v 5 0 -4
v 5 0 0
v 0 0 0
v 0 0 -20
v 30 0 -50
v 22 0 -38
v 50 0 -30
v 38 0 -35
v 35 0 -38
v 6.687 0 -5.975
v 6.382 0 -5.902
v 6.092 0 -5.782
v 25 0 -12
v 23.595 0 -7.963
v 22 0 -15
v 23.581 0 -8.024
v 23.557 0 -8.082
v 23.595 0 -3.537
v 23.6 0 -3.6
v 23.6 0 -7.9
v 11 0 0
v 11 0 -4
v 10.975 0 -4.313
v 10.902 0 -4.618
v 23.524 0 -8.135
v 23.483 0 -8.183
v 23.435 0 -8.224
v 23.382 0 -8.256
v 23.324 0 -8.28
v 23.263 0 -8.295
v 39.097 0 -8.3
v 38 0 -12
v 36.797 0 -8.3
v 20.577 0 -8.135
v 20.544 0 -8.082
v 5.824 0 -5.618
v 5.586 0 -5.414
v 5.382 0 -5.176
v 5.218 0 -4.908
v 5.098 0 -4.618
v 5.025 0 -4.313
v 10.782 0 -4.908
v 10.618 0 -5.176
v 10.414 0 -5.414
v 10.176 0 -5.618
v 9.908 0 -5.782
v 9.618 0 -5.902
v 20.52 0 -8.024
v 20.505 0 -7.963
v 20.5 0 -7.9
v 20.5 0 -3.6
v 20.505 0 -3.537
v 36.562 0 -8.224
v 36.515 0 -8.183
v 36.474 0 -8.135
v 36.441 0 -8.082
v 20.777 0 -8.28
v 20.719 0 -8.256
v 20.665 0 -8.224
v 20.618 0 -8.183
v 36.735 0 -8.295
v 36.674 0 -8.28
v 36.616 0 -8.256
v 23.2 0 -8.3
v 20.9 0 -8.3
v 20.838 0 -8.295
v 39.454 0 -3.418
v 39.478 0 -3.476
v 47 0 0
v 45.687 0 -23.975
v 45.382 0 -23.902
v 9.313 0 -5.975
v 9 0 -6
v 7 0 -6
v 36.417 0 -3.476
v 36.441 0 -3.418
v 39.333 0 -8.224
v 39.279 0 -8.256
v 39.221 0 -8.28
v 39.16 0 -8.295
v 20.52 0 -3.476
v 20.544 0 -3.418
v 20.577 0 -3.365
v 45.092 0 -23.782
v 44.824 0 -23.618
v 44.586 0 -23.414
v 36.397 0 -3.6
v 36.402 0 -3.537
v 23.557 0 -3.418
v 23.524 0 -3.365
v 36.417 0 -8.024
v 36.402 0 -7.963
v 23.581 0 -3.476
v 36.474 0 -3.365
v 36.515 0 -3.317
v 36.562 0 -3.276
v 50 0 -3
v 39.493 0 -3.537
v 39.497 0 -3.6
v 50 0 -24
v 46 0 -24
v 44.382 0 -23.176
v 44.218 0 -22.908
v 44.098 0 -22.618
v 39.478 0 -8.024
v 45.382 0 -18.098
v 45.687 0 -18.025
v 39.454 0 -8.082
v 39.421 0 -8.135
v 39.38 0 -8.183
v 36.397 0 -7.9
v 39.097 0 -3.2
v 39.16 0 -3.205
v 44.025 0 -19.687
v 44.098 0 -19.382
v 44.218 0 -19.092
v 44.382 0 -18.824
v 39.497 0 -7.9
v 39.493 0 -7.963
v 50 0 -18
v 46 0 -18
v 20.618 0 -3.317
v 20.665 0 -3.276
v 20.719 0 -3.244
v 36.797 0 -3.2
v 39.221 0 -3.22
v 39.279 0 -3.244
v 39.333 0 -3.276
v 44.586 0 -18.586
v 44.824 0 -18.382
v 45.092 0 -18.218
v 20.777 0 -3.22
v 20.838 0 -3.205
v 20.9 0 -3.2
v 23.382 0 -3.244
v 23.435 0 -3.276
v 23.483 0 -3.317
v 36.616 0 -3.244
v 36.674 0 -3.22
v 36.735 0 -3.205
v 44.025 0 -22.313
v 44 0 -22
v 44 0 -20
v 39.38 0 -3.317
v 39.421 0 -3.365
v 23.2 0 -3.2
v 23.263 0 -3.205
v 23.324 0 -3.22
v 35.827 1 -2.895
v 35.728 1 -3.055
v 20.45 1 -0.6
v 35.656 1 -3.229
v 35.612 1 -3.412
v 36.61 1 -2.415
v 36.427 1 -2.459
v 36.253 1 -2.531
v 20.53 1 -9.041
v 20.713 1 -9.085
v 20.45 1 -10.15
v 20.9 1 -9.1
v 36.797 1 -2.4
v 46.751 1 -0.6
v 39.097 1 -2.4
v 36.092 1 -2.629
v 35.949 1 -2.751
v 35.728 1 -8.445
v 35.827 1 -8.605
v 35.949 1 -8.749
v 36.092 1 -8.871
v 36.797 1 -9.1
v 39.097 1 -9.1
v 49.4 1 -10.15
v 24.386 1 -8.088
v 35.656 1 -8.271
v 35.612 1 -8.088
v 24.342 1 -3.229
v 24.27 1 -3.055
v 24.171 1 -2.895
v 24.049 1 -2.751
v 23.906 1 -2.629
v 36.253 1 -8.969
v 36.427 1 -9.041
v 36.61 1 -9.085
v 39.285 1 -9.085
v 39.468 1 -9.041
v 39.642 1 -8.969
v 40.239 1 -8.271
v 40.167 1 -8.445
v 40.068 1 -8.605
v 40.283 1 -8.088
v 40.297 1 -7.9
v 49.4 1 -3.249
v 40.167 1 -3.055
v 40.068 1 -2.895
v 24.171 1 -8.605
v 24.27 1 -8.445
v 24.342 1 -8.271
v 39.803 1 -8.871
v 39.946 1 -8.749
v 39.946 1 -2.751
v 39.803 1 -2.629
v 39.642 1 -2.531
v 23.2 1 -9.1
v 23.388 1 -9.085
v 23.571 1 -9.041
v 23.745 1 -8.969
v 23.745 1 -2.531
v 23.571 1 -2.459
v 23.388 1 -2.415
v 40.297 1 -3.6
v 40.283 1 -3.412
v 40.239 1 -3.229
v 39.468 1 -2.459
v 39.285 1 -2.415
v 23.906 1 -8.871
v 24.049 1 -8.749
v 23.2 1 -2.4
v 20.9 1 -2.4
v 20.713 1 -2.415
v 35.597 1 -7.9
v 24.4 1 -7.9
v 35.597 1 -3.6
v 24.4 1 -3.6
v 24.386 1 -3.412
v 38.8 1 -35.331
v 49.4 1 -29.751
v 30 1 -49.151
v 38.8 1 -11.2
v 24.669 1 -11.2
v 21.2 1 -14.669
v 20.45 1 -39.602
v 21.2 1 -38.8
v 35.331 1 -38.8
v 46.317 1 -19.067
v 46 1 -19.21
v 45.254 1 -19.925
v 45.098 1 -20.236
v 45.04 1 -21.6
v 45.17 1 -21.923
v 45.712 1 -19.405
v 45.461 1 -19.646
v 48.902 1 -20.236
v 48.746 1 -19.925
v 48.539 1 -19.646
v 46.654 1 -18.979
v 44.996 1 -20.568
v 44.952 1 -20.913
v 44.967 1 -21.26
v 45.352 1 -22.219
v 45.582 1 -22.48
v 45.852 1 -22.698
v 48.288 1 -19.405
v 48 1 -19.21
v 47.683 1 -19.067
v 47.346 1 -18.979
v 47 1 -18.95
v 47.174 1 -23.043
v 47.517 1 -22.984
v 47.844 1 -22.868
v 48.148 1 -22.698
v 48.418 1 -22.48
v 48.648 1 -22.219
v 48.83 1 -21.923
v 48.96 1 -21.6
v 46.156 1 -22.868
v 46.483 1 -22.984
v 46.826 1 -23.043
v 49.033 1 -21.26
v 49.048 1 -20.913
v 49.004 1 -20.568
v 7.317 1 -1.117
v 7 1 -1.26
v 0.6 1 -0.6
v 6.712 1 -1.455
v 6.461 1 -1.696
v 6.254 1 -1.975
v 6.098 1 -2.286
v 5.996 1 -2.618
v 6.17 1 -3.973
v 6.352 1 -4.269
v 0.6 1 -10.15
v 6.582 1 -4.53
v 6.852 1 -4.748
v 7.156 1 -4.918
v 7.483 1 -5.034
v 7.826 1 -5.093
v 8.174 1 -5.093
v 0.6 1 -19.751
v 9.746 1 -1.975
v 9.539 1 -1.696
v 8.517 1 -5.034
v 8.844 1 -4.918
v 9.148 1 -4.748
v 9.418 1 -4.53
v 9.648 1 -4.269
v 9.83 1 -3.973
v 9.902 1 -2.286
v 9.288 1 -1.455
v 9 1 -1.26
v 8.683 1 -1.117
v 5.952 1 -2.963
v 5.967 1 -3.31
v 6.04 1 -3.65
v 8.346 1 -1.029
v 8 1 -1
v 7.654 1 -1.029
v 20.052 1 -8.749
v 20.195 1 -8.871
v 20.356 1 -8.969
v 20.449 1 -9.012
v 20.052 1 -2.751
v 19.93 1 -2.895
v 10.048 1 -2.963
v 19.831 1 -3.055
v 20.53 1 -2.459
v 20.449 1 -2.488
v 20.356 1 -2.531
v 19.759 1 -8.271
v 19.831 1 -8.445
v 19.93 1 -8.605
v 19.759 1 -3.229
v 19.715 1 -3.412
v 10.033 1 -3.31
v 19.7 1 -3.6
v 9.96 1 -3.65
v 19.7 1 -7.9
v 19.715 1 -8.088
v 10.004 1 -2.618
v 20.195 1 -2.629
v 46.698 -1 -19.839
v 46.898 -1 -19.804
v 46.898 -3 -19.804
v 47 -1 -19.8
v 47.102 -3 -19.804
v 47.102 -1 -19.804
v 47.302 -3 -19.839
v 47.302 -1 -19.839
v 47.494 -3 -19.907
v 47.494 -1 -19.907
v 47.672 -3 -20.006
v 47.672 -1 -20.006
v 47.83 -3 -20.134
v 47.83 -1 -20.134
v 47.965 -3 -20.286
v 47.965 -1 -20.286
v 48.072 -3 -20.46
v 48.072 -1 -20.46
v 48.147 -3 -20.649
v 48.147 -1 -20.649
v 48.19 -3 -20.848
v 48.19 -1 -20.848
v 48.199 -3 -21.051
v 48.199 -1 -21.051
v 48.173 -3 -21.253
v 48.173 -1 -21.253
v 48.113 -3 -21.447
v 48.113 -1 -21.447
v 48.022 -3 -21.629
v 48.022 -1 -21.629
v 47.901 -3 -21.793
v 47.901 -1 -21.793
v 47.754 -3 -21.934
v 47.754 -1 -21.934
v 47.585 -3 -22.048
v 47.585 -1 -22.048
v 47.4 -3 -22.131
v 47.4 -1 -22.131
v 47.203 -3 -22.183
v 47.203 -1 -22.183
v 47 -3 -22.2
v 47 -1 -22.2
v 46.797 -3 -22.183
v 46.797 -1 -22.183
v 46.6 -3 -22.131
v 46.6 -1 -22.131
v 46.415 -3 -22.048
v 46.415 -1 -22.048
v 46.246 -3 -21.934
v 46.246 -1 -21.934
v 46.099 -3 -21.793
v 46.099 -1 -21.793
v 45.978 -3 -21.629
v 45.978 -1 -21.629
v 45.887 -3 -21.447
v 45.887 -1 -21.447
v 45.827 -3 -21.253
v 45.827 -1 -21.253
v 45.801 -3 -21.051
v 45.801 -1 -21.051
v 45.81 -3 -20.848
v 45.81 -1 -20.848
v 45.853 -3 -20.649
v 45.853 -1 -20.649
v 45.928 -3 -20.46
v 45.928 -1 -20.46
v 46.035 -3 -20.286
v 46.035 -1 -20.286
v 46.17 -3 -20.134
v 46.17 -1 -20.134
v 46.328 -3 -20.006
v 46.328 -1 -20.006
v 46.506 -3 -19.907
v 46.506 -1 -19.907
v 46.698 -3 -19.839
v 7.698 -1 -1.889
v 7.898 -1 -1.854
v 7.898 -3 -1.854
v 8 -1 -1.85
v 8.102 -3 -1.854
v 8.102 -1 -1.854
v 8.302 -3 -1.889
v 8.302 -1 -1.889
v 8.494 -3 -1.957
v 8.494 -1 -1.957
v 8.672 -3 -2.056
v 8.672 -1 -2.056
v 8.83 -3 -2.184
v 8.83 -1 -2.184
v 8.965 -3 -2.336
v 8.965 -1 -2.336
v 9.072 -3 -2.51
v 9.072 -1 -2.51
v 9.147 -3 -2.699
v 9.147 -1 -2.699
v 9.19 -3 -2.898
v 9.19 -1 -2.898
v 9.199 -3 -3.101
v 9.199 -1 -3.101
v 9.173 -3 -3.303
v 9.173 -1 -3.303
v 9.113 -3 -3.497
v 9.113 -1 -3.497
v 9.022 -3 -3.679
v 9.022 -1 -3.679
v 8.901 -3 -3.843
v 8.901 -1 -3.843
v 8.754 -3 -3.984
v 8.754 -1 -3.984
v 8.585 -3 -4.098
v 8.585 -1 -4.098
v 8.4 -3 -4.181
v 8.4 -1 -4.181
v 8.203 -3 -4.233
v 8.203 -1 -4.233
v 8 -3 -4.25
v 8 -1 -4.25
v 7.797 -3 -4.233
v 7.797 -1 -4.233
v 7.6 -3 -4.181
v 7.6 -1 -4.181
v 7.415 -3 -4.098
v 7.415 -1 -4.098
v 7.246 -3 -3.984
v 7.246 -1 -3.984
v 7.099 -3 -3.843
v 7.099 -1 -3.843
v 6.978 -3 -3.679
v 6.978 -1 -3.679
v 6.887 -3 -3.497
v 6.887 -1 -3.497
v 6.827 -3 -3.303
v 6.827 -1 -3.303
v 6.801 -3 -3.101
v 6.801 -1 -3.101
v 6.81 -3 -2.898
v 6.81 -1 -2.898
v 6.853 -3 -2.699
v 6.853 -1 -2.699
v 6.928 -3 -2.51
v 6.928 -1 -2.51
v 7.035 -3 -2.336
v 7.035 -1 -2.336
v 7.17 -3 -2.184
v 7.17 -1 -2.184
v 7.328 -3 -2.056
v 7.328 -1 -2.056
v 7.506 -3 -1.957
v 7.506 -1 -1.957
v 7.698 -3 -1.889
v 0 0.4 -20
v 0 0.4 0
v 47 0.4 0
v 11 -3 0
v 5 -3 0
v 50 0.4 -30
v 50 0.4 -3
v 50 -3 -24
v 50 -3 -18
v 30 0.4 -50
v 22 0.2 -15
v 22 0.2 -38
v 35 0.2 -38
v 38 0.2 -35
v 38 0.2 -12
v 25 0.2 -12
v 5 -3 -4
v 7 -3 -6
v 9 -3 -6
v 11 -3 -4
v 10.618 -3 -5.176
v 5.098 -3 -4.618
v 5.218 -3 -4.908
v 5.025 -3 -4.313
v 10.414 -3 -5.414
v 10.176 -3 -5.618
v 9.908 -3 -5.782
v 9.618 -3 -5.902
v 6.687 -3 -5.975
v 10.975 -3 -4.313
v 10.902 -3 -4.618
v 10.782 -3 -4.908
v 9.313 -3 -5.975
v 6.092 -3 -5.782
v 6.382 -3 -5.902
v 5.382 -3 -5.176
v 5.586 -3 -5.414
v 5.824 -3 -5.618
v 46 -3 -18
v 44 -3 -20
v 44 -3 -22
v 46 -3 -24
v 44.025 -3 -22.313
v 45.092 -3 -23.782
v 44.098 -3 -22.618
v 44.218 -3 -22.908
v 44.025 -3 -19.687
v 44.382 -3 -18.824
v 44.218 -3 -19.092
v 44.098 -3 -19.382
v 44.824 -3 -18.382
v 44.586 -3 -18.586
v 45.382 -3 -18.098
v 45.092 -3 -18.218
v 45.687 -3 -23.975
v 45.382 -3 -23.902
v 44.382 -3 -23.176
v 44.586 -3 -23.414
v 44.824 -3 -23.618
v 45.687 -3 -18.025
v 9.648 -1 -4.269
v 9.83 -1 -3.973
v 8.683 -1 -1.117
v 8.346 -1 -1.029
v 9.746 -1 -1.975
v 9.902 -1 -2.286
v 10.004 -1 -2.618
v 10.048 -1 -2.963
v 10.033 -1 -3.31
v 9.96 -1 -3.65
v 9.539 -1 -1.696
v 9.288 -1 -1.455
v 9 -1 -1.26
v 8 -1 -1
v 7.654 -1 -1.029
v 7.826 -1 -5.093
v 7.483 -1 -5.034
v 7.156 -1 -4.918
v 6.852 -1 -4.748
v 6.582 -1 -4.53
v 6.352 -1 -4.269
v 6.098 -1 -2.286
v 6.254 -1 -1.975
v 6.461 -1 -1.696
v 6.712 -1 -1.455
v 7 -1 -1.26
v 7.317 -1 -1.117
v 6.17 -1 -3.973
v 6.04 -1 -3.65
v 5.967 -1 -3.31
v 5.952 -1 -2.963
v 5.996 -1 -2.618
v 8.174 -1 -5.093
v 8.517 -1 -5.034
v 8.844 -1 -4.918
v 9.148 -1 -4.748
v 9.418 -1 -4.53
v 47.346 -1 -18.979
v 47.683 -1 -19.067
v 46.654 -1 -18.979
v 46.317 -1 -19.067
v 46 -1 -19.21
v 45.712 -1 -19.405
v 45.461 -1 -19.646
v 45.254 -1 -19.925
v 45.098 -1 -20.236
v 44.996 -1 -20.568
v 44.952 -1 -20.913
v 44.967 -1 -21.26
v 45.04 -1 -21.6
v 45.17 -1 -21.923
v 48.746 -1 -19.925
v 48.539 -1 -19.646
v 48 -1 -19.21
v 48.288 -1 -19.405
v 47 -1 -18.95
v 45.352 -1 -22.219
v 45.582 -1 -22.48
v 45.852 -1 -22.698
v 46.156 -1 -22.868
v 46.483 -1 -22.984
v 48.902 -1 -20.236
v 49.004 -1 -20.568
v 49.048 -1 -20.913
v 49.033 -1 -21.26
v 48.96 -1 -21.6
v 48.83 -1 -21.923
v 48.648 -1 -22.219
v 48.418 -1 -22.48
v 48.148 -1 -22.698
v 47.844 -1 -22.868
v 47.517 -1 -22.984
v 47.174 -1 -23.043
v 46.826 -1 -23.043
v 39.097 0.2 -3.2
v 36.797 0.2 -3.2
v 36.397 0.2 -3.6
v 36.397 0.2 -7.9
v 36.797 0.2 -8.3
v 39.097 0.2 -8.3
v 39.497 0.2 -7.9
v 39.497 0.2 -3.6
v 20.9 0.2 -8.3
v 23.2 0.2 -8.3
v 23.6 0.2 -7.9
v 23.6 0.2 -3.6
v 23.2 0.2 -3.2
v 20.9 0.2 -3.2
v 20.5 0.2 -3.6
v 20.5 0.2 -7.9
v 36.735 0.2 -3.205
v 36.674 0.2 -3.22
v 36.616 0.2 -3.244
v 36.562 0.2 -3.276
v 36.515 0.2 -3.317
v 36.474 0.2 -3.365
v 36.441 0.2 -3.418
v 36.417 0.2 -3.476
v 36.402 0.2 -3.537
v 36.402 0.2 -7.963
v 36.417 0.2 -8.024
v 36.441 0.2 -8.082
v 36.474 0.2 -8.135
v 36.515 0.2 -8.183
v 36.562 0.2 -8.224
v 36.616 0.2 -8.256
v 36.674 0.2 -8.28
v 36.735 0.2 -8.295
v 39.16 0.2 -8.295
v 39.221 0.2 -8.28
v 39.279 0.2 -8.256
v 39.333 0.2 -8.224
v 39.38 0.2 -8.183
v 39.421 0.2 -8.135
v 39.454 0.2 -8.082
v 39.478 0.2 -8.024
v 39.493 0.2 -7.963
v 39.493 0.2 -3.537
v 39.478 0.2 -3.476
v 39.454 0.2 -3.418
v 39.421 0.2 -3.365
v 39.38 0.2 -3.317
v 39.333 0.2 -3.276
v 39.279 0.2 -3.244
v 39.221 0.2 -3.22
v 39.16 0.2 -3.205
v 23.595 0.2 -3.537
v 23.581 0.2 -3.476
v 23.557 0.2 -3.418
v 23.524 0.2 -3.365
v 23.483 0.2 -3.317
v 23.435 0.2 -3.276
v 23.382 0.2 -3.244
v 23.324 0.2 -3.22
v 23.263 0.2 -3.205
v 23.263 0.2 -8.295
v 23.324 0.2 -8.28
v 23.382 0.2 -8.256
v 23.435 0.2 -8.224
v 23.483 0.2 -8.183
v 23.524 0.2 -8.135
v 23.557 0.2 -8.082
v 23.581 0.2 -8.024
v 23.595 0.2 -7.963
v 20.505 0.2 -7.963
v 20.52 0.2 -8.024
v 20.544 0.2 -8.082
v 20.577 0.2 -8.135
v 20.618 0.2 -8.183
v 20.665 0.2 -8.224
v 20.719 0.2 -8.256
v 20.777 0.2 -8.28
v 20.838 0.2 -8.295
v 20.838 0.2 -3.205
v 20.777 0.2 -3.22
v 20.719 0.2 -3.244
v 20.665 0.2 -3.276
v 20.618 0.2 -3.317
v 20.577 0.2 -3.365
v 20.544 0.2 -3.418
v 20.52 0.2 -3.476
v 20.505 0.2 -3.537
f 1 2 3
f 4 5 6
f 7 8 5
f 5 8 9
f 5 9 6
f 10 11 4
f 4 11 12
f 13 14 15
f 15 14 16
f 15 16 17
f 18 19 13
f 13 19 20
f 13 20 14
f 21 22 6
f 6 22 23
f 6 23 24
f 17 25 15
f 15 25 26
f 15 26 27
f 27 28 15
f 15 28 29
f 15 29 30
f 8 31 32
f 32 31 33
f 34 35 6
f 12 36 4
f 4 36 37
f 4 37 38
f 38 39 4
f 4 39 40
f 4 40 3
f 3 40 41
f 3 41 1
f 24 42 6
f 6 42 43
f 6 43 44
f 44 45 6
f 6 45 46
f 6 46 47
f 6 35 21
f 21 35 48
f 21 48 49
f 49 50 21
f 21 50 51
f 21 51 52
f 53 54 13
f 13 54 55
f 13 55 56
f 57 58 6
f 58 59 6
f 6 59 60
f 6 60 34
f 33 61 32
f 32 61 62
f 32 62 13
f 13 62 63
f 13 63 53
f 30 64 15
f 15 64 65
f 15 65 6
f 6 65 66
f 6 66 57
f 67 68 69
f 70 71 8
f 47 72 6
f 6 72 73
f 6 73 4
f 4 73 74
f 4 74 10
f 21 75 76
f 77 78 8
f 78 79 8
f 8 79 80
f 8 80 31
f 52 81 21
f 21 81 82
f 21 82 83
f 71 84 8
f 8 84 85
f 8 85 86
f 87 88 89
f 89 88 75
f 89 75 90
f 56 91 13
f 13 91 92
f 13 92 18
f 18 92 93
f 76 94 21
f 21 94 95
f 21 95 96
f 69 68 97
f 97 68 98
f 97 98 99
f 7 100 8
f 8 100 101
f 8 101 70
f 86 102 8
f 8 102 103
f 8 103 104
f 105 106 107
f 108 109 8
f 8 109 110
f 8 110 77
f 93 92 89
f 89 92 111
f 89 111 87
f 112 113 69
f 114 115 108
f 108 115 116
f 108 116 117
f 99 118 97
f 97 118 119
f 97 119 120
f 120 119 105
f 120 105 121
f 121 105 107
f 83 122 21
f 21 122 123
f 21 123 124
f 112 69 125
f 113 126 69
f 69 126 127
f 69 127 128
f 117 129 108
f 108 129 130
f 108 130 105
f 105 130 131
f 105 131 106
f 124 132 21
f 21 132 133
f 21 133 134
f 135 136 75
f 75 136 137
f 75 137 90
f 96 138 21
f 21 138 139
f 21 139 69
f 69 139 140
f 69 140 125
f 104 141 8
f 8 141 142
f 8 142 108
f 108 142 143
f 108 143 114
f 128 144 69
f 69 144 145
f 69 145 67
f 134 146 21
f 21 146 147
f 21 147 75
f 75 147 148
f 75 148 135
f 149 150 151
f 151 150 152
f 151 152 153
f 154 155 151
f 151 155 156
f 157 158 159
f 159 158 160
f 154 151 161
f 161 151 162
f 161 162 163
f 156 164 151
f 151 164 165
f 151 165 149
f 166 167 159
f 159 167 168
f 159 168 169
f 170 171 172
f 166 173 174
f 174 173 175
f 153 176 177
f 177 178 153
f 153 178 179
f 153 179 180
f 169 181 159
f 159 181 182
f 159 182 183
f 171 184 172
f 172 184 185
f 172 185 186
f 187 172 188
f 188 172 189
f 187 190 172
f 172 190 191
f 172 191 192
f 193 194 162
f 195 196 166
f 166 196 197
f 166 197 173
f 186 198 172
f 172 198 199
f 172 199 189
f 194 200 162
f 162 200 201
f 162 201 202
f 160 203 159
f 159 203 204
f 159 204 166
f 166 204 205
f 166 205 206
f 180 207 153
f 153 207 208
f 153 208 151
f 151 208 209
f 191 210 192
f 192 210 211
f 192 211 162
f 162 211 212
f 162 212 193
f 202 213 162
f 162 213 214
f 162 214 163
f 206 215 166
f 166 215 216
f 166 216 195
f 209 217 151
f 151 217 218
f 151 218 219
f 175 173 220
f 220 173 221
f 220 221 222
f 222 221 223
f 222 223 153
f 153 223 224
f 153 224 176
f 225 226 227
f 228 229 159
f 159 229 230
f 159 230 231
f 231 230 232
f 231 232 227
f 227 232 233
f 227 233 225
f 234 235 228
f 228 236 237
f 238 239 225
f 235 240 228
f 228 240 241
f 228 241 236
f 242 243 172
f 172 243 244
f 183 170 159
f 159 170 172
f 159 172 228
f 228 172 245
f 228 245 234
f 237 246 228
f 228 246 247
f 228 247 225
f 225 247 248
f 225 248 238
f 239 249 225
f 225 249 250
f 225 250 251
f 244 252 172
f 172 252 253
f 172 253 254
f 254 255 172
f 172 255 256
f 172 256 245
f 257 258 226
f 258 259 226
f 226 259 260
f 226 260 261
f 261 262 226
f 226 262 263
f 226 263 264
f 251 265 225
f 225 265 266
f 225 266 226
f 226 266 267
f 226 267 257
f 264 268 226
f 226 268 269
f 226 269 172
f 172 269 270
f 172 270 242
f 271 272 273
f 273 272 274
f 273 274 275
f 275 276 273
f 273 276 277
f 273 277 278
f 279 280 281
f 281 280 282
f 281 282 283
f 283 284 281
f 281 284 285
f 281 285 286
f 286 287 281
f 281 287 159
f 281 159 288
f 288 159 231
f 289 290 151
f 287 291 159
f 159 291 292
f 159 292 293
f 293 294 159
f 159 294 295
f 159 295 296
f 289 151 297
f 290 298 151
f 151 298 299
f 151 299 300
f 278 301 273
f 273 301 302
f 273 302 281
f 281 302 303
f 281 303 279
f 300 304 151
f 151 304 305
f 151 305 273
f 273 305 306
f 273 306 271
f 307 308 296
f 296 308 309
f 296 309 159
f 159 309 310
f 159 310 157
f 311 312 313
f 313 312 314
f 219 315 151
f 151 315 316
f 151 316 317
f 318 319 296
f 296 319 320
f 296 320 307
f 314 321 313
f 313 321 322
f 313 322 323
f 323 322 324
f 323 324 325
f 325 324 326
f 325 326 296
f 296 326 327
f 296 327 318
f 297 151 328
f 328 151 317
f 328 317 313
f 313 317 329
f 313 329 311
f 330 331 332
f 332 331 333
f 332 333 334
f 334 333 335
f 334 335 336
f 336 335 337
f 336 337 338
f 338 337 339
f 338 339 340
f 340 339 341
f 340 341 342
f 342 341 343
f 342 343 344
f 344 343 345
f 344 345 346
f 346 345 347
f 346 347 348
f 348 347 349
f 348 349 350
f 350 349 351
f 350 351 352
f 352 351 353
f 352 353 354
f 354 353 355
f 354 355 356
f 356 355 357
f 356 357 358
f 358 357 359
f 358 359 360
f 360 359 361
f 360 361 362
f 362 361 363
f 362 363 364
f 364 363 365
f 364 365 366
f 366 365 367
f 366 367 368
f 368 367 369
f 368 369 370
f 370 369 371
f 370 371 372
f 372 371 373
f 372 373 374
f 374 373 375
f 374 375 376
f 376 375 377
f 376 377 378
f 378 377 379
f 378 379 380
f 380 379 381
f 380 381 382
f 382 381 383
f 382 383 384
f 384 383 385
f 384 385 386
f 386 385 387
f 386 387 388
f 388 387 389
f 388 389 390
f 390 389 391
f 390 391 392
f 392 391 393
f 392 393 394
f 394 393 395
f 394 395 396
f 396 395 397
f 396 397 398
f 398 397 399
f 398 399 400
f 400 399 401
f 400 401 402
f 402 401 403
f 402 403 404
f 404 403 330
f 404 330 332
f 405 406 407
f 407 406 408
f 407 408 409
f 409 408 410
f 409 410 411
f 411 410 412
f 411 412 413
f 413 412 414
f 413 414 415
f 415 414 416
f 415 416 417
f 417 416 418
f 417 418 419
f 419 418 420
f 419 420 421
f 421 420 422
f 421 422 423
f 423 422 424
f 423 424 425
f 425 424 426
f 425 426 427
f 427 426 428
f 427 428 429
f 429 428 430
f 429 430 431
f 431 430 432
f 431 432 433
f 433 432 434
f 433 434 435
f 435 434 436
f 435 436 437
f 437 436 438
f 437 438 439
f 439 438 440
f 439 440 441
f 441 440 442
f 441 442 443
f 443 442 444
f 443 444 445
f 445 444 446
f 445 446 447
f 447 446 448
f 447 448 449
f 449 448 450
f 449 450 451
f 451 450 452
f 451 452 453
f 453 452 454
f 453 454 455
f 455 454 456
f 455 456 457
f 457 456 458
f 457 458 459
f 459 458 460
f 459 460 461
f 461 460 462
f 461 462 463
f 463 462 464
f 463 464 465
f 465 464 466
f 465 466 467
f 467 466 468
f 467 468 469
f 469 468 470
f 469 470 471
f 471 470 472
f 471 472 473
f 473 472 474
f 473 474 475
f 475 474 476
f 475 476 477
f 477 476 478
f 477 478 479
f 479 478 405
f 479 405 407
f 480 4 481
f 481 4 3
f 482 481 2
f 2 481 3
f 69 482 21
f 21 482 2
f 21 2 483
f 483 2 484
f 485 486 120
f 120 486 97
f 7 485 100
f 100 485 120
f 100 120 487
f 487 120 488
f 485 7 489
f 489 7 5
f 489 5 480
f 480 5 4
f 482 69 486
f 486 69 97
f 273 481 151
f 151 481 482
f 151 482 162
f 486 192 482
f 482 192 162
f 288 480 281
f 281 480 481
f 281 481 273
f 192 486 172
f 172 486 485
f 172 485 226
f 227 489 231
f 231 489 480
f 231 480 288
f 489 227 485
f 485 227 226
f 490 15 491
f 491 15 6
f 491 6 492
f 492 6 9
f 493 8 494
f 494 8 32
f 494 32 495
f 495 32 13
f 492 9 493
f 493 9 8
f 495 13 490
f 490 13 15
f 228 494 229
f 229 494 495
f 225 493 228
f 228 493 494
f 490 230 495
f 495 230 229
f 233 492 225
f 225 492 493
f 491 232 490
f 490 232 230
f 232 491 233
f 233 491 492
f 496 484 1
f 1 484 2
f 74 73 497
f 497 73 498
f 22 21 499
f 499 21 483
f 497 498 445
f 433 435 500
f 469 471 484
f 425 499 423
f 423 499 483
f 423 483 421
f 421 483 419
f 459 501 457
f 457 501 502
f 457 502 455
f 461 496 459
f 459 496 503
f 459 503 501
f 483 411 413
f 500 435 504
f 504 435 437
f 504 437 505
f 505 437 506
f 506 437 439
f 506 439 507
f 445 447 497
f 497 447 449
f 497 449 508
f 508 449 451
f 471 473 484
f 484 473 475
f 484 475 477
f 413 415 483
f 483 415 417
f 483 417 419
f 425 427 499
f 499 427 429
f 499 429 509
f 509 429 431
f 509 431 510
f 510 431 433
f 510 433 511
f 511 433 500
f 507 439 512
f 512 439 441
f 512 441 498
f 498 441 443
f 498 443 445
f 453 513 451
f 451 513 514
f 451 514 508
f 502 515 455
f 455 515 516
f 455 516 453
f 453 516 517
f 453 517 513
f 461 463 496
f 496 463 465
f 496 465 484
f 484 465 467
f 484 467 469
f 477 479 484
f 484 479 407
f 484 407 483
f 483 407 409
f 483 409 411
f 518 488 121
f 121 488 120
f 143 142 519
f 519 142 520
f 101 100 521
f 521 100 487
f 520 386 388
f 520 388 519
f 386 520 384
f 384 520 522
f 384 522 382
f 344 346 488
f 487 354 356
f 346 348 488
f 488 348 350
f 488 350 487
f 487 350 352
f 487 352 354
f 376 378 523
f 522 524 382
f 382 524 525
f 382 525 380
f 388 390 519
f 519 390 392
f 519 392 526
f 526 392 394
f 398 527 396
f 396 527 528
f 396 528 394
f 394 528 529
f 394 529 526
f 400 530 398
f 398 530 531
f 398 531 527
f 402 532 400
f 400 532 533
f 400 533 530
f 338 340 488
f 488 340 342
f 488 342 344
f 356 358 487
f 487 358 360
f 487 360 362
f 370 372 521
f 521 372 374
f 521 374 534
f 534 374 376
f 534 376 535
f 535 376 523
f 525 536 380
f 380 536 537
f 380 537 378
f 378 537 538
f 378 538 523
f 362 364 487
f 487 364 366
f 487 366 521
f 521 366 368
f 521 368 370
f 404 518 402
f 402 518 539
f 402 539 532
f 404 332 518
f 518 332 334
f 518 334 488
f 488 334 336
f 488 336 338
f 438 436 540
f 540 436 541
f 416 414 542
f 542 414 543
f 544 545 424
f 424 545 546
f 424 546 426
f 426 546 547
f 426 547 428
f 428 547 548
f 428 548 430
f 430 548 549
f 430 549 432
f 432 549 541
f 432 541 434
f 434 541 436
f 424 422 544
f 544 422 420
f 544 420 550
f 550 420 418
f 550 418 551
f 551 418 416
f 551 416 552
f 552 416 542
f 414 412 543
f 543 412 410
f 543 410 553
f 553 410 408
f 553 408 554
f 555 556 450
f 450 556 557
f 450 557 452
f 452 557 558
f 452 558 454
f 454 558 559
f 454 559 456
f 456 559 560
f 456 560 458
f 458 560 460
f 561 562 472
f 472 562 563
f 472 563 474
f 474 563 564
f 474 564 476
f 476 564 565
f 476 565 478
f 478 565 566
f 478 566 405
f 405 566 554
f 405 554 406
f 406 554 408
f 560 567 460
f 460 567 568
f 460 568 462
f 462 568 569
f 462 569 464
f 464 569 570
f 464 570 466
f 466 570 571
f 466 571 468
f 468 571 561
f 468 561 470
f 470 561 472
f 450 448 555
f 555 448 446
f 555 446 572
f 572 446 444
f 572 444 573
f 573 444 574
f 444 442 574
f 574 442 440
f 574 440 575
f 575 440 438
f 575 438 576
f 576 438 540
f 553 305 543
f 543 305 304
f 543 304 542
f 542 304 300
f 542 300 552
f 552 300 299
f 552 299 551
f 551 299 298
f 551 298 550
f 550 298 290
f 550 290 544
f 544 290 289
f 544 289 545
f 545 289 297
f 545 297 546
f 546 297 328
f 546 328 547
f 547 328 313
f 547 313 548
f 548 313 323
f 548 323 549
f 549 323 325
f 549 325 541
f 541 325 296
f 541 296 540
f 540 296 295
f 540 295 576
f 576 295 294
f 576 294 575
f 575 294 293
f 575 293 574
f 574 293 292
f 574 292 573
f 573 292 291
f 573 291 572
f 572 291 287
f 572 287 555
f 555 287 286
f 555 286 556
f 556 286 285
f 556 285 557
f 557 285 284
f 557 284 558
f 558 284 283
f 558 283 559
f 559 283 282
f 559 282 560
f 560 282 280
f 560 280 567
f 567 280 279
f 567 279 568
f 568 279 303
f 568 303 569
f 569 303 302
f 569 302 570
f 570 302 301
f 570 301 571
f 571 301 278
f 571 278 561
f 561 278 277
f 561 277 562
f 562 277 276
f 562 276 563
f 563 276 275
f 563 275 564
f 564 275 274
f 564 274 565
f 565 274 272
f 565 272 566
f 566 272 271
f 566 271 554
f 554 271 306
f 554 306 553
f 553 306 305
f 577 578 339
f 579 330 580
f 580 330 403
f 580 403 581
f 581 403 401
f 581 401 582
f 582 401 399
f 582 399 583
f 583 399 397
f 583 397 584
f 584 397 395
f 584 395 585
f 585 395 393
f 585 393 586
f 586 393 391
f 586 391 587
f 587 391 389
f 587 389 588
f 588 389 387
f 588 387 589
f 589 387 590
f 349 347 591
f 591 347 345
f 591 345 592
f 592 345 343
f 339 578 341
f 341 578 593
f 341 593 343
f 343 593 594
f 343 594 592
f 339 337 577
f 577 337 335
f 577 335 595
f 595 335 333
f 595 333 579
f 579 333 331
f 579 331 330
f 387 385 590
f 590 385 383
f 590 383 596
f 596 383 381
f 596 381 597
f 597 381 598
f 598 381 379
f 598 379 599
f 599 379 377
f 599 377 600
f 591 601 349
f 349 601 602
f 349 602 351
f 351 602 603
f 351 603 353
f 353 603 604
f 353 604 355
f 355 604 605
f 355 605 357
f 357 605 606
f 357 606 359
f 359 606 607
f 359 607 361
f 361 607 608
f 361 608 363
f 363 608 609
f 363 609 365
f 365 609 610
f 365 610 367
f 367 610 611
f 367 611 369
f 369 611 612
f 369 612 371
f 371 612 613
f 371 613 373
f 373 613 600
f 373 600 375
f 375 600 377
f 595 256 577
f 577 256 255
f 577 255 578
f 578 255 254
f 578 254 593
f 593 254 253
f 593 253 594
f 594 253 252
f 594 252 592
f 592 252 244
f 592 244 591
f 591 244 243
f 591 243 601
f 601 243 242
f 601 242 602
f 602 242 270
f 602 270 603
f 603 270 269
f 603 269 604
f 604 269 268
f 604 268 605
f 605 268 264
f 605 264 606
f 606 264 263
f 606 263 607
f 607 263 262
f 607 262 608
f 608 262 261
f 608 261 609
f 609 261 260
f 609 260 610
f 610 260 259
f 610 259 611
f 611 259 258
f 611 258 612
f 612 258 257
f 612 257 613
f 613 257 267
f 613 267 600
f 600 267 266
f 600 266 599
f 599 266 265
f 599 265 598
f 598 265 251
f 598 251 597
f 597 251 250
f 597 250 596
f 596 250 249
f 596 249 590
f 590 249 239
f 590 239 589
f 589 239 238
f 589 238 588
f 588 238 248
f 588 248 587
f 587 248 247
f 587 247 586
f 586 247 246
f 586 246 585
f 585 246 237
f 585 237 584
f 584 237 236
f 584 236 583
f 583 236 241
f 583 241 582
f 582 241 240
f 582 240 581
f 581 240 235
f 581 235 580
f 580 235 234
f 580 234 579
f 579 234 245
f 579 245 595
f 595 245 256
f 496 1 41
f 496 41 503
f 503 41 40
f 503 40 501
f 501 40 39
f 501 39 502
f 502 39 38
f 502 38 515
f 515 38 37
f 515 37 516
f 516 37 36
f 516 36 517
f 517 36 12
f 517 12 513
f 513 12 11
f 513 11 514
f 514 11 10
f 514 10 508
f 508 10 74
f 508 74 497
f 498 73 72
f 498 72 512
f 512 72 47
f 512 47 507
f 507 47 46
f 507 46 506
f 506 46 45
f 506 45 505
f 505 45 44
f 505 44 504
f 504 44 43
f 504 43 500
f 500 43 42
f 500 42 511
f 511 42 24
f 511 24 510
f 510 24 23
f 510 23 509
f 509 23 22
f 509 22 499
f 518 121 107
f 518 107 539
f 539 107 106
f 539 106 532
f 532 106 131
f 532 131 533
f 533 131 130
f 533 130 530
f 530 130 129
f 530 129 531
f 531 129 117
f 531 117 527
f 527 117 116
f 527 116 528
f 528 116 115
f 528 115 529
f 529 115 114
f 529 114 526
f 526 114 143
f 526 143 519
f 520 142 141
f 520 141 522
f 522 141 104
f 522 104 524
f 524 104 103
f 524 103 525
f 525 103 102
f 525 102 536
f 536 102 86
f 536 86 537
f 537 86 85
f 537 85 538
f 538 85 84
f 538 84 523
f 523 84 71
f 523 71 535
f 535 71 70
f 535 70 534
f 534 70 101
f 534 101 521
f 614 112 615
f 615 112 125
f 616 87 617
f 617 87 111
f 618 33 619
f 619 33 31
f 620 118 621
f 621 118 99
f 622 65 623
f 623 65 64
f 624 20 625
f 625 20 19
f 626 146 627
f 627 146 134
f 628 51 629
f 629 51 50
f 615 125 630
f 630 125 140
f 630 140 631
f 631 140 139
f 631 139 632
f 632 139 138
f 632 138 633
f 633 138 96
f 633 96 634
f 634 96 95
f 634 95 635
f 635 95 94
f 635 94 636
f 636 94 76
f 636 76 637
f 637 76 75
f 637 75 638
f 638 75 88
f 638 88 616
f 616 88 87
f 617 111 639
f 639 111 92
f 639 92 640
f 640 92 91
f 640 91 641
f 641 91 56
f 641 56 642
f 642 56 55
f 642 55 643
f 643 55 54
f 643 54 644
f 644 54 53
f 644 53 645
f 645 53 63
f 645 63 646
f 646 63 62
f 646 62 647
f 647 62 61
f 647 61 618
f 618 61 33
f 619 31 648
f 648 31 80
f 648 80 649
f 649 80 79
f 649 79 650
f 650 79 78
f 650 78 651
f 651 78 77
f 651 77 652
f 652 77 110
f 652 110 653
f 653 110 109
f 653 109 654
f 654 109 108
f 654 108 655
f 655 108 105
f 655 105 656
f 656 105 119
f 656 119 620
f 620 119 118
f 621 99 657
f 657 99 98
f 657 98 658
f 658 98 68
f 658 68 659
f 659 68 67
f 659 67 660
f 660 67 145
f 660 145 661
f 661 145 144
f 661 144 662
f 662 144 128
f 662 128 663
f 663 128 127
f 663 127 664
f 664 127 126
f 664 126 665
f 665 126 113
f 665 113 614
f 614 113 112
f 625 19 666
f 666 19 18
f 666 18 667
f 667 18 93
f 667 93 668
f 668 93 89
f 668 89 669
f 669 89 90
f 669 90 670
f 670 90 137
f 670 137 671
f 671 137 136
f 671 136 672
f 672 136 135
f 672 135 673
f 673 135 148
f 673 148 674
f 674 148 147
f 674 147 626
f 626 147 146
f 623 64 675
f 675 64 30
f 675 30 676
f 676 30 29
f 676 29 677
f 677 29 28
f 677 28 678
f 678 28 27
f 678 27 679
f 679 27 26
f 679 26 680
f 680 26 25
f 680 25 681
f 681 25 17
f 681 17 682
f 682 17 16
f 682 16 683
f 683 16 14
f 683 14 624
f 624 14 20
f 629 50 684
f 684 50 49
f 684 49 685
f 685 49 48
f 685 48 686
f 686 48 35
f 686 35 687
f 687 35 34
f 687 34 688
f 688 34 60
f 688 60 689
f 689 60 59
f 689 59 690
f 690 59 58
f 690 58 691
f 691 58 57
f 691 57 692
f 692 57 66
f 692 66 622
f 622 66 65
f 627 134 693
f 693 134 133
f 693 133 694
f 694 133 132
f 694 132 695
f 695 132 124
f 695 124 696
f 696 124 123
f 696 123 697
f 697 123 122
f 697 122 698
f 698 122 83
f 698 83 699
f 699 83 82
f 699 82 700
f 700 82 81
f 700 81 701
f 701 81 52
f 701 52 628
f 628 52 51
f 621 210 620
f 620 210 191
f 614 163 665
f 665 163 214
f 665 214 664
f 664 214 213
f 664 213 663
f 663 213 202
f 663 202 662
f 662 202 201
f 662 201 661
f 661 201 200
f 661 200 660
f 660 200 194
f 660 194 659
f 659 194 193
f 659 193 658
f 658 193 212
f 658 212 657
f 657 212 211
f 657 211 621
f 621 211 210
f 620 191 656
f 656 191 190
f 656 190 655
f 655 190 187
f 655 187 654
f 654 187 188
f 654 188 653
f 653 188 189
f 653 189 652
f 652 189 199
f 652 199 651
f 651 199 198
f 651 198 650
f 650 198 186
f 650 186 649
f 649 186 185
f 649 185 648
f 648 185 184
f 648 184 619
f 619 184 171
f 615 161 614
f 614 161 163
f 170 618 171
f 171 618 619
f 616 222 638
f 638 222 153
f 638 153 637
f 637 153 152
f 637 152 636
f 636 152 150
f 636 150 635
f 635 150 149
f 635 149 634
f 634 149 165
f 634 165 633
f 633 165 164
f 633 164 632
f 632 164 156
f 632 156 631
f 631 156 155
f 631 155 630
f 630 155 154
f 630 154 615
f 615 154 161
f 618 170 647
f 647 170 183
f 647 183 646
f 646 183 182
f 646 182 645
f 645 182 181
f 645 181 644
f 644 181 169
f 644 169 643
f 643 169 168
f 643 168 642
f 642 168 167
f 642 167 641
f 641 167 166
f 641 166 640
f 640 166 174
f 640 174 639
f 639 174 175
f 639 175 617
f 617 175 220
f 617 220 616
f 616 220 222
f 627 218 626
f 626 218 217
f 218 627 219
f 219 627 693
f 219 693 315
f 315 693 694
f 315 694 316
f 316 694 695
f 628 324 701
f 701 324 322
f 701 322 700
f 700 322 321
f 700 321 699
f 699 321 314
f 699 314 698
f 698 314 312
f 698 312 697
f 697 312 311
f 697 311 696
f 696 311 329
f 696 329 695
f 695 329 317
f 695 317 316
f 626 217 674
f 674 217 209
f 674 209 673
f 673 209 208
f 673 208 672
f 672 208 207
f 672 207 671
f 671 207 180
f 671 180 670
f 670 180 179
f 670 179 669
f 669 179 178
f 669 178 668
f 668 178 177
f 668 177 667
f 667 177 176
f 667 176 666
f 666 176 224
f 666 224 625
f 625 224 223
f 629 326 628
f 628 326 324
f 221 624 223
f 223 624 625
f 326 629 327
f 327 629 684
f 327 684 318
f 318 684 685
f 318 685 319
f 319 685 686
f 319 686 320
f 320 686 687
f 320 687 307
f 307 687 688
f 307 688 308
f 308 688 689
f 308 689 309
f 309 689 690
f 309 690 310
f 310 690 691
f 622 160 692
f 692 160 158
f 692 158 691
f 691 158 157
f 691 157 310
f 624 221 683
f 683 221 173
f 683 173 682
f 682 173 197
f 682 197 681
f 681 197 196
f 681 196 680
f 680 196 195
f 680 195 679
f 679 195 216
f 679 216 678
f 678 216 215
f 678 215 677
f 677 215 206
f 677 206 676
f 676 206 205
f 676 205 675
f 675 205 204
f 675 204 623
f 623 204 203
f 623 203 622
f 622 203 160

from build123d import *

# Parameters (mm, degrees)
EXTRUDE_1_DEPTH     = 1
CHAMFER_2_SIZE      = 3
CHAMFER_1_SIZE      = 0.6
SKETCH_2_W          = 16
SKETCH_2_H          = 26
CUT_EXTRUDE_1_DEPTH = 10
CHAMFER_3_SIZE      = 3
CHAMFER_4_SIZE      = 0.8
SKETCH_3_W          = 6
SKETCH_3_H          = 6
EXTRUDE_2_DEPTH     = 3
SKETCH_4_R          = 1.2
CUT_EXTRUDE_2_DEPTH = 5
SKETCH_5_R          = 2.05
CUT_EXTRUDE_3_DEPTH = 2
FILLET_1_R          = 2
SKETCH_7_W          = 3.1
SKETCH_7_H          = 5.1
CUT_EXTRUDE_4_DEPTH = 2
FILLET_2_R          = 0.4
CHAMFER_5_SIZE      = 0.8


with BuildPart() as part:
    # 草图1 → 凸台-拉伸1 (new body)
    with BuildSketch(Plane(origin=(0, 0, 0), x_dir=(1, 0, 0), z_dir=(0, 1, 0))):
        Polygon((0, 0), (50, 0), (50, 30), (30, 50), (0, 20), align=None)
    extrude(amount=EXTRUDE_1_DEPTH)

    # 倒角2
    chamfer_2_edges = [part.edges().sort_by_distance(p)[0] for p in [
        (50, 0.5, 0),
    ]]
    chamfer(chamfer_2_edges, length=CHAMFER_2_SIZE)

    # 倒角1
    chamfer_1_edges = [part.edges().sort_by_distance(p)[0] for p in [
        (40, 1, -40),
        (50, 1, -16.5),
        (48.5, 1, -1.5),
        (15, 1, -35),
        (0, 1, -10),
        (23.5, 1, 0),
    ]]
    chamfer(chamfer_1_edges, length=CHAMFER_1_SIZE)

    # 草图2 → 切除-拉伸1 (cut)
    with BuildSketch(Plane(origin=(0, 1, 0), x_dir=(1, 0, 0), z_dir=(0, 1, 0))):
        with Locations((30, 25)):
            Rectangle(SKETCH_2_W, SKETCH_2_H)
    extrude(amount=-CUT_EXTRUDE_1_DEPTH, mode=Mode.SUBTRACT)

    # 倒角3
    chamfer_3_edges = [part.edges().sort_by_distance(p)[0] for p in [
        (22, 0.5, -12),
        (38, 0.5, -38),
    ]]
    chamfer(chamfer_3_edges, length=CHAMFER_3_SIZE)

    # 倒角4
    chamfer_4_edges = [part.edges().sort_by_distance(p)[0] for p in [
        (22, 1, -26.5),
        (38, 1, -23.5),
        (28.5, 1, -38),
        (31.5, 1, -12),
        (36.5, 1, -36.5),
        (23.5, 1, -13.5),
    ]]
    chamfer(chamfer_4_edges, length=CHAMFER_4_SIZE)

    # 草图3 → 凸台-拉伸2 (add)
    with BuildSketch(Plane.XZ):
        with Locations((8, -3)):
            Rectangle(SKETCH_3_W, SKETCH_3_H)
        with Locations((47, -21)):
            Rectangle(SKETCH_3_W, SKETCH_3_H)
    extrude(amount=EXTRUDE_2_DEPTH)

    # 草图4 → 切除-拉伸2 (cut, through all)
    with BuildSketch(Plane.XZ.offset(3)):
        with Locations((8, -3.05)):
            Circle(SKETCH_4_R)
        with Locations((47, -21)):
            Circle(SKETCH_4_R)
    extrude(amount=-CUT_EXTRUDE_2_DEPTH, mode=Mode.SUBTRACT)

    # 草图5 → 切除-拉伸3 (cut)
    with BuildSketch(Plane(origin=(0, 1, 0), x_dir=(1, 0, 0), z_dir=(0, 1, 0))):
        with Locations((8, 3.05)):
            Circle(SKETCH_5_R)
        with Locations((47, 21)):
            Circle(SKETCH_5_R)
    extrude(amount=-CUT_EXTRUDE_3_DEPTH, mode=Mode.SUBTRACT)

    # 圆角1
    fillet_1_edges = [part.edges().sort_by_distance(p)[0] for p in [
        (5, -1.5, -6),
        (11, -1.5, -6),
        (44, -1.5, -18),
        (44, -1.5, -24),
    ]]
    fillet(fillet_1_edges, radius=FILLET_1_R)

    # 草图7 → 切除-拉伸4 (cut)
    with BuildSketch(Plane(origin=(0, 1, 0), x_dir=(1, 0, 0), z_dir=(0, 1, 0))):
        with Locations((37.947463912, 5.75)):
            Rectangle(SKETCH_7_W, SKETCH_7_H)
        with Locations((22.050353573, 5.75)):
            Rectangle(SKETCH_7_W, SKETCH_7_H)
    extrude(amount=-CUT_EXTRUDE_4_DEPTH, mode=Mode.SUBTRACT)

    # 圆角2
    fillet_2_edges = [part.edges().sort_by_distance(p)[0] for p in [
        (20.500353573, 0.5, -8.3),
        (23.600353573, 0.5, -8.3),
        (23.600353573, 0.5, -3.2),
        (20.500353573, 0.5, -3.2),
        (39.497463912, 0.5, -3.2),
        (36.397463912, 0.5, -3.2),
        (36.397463912, 0.5, -8.3),
        (39.497463912, 0.5, -8.3),
    ]]
    fillet(fillet_2_edges, radius=FILLET_2_R)

    # 倒角5
    chamfer_5_edges = [part.edges().sort_by_distance(p)[0] for p in [
        (37.947463912, 1, -3.2),
        (36.397463912, 1, -5.75),
        (37.947463912, 1, -8.3),
        (39.497463912, 1, -5.75),
        (23.600353573, 1, -5.75),
        (22.050353573, 1, -3.2),
        (22.050353573, 1, -8.3),
        (20.500353573, 1, -5.75),
        (36.514621199, 1, -3.317157288),
        (36.514621199, 1, -8.182842712),
        (39.380306624, 1, -8.182842712),
        (39.380306624, 1, -3.317157288),
        (23.483196285, 1, -3.317157288),
        (23.483196285, 1, -8.182842712),
        (20.61751086, 1, -8.182842712),
        (20.61751086, 1, -3.317157288),
    ]]
    chamfer(chamfer_5_edges, length=CHAMFER_5_SIZE)


solid = part.part
